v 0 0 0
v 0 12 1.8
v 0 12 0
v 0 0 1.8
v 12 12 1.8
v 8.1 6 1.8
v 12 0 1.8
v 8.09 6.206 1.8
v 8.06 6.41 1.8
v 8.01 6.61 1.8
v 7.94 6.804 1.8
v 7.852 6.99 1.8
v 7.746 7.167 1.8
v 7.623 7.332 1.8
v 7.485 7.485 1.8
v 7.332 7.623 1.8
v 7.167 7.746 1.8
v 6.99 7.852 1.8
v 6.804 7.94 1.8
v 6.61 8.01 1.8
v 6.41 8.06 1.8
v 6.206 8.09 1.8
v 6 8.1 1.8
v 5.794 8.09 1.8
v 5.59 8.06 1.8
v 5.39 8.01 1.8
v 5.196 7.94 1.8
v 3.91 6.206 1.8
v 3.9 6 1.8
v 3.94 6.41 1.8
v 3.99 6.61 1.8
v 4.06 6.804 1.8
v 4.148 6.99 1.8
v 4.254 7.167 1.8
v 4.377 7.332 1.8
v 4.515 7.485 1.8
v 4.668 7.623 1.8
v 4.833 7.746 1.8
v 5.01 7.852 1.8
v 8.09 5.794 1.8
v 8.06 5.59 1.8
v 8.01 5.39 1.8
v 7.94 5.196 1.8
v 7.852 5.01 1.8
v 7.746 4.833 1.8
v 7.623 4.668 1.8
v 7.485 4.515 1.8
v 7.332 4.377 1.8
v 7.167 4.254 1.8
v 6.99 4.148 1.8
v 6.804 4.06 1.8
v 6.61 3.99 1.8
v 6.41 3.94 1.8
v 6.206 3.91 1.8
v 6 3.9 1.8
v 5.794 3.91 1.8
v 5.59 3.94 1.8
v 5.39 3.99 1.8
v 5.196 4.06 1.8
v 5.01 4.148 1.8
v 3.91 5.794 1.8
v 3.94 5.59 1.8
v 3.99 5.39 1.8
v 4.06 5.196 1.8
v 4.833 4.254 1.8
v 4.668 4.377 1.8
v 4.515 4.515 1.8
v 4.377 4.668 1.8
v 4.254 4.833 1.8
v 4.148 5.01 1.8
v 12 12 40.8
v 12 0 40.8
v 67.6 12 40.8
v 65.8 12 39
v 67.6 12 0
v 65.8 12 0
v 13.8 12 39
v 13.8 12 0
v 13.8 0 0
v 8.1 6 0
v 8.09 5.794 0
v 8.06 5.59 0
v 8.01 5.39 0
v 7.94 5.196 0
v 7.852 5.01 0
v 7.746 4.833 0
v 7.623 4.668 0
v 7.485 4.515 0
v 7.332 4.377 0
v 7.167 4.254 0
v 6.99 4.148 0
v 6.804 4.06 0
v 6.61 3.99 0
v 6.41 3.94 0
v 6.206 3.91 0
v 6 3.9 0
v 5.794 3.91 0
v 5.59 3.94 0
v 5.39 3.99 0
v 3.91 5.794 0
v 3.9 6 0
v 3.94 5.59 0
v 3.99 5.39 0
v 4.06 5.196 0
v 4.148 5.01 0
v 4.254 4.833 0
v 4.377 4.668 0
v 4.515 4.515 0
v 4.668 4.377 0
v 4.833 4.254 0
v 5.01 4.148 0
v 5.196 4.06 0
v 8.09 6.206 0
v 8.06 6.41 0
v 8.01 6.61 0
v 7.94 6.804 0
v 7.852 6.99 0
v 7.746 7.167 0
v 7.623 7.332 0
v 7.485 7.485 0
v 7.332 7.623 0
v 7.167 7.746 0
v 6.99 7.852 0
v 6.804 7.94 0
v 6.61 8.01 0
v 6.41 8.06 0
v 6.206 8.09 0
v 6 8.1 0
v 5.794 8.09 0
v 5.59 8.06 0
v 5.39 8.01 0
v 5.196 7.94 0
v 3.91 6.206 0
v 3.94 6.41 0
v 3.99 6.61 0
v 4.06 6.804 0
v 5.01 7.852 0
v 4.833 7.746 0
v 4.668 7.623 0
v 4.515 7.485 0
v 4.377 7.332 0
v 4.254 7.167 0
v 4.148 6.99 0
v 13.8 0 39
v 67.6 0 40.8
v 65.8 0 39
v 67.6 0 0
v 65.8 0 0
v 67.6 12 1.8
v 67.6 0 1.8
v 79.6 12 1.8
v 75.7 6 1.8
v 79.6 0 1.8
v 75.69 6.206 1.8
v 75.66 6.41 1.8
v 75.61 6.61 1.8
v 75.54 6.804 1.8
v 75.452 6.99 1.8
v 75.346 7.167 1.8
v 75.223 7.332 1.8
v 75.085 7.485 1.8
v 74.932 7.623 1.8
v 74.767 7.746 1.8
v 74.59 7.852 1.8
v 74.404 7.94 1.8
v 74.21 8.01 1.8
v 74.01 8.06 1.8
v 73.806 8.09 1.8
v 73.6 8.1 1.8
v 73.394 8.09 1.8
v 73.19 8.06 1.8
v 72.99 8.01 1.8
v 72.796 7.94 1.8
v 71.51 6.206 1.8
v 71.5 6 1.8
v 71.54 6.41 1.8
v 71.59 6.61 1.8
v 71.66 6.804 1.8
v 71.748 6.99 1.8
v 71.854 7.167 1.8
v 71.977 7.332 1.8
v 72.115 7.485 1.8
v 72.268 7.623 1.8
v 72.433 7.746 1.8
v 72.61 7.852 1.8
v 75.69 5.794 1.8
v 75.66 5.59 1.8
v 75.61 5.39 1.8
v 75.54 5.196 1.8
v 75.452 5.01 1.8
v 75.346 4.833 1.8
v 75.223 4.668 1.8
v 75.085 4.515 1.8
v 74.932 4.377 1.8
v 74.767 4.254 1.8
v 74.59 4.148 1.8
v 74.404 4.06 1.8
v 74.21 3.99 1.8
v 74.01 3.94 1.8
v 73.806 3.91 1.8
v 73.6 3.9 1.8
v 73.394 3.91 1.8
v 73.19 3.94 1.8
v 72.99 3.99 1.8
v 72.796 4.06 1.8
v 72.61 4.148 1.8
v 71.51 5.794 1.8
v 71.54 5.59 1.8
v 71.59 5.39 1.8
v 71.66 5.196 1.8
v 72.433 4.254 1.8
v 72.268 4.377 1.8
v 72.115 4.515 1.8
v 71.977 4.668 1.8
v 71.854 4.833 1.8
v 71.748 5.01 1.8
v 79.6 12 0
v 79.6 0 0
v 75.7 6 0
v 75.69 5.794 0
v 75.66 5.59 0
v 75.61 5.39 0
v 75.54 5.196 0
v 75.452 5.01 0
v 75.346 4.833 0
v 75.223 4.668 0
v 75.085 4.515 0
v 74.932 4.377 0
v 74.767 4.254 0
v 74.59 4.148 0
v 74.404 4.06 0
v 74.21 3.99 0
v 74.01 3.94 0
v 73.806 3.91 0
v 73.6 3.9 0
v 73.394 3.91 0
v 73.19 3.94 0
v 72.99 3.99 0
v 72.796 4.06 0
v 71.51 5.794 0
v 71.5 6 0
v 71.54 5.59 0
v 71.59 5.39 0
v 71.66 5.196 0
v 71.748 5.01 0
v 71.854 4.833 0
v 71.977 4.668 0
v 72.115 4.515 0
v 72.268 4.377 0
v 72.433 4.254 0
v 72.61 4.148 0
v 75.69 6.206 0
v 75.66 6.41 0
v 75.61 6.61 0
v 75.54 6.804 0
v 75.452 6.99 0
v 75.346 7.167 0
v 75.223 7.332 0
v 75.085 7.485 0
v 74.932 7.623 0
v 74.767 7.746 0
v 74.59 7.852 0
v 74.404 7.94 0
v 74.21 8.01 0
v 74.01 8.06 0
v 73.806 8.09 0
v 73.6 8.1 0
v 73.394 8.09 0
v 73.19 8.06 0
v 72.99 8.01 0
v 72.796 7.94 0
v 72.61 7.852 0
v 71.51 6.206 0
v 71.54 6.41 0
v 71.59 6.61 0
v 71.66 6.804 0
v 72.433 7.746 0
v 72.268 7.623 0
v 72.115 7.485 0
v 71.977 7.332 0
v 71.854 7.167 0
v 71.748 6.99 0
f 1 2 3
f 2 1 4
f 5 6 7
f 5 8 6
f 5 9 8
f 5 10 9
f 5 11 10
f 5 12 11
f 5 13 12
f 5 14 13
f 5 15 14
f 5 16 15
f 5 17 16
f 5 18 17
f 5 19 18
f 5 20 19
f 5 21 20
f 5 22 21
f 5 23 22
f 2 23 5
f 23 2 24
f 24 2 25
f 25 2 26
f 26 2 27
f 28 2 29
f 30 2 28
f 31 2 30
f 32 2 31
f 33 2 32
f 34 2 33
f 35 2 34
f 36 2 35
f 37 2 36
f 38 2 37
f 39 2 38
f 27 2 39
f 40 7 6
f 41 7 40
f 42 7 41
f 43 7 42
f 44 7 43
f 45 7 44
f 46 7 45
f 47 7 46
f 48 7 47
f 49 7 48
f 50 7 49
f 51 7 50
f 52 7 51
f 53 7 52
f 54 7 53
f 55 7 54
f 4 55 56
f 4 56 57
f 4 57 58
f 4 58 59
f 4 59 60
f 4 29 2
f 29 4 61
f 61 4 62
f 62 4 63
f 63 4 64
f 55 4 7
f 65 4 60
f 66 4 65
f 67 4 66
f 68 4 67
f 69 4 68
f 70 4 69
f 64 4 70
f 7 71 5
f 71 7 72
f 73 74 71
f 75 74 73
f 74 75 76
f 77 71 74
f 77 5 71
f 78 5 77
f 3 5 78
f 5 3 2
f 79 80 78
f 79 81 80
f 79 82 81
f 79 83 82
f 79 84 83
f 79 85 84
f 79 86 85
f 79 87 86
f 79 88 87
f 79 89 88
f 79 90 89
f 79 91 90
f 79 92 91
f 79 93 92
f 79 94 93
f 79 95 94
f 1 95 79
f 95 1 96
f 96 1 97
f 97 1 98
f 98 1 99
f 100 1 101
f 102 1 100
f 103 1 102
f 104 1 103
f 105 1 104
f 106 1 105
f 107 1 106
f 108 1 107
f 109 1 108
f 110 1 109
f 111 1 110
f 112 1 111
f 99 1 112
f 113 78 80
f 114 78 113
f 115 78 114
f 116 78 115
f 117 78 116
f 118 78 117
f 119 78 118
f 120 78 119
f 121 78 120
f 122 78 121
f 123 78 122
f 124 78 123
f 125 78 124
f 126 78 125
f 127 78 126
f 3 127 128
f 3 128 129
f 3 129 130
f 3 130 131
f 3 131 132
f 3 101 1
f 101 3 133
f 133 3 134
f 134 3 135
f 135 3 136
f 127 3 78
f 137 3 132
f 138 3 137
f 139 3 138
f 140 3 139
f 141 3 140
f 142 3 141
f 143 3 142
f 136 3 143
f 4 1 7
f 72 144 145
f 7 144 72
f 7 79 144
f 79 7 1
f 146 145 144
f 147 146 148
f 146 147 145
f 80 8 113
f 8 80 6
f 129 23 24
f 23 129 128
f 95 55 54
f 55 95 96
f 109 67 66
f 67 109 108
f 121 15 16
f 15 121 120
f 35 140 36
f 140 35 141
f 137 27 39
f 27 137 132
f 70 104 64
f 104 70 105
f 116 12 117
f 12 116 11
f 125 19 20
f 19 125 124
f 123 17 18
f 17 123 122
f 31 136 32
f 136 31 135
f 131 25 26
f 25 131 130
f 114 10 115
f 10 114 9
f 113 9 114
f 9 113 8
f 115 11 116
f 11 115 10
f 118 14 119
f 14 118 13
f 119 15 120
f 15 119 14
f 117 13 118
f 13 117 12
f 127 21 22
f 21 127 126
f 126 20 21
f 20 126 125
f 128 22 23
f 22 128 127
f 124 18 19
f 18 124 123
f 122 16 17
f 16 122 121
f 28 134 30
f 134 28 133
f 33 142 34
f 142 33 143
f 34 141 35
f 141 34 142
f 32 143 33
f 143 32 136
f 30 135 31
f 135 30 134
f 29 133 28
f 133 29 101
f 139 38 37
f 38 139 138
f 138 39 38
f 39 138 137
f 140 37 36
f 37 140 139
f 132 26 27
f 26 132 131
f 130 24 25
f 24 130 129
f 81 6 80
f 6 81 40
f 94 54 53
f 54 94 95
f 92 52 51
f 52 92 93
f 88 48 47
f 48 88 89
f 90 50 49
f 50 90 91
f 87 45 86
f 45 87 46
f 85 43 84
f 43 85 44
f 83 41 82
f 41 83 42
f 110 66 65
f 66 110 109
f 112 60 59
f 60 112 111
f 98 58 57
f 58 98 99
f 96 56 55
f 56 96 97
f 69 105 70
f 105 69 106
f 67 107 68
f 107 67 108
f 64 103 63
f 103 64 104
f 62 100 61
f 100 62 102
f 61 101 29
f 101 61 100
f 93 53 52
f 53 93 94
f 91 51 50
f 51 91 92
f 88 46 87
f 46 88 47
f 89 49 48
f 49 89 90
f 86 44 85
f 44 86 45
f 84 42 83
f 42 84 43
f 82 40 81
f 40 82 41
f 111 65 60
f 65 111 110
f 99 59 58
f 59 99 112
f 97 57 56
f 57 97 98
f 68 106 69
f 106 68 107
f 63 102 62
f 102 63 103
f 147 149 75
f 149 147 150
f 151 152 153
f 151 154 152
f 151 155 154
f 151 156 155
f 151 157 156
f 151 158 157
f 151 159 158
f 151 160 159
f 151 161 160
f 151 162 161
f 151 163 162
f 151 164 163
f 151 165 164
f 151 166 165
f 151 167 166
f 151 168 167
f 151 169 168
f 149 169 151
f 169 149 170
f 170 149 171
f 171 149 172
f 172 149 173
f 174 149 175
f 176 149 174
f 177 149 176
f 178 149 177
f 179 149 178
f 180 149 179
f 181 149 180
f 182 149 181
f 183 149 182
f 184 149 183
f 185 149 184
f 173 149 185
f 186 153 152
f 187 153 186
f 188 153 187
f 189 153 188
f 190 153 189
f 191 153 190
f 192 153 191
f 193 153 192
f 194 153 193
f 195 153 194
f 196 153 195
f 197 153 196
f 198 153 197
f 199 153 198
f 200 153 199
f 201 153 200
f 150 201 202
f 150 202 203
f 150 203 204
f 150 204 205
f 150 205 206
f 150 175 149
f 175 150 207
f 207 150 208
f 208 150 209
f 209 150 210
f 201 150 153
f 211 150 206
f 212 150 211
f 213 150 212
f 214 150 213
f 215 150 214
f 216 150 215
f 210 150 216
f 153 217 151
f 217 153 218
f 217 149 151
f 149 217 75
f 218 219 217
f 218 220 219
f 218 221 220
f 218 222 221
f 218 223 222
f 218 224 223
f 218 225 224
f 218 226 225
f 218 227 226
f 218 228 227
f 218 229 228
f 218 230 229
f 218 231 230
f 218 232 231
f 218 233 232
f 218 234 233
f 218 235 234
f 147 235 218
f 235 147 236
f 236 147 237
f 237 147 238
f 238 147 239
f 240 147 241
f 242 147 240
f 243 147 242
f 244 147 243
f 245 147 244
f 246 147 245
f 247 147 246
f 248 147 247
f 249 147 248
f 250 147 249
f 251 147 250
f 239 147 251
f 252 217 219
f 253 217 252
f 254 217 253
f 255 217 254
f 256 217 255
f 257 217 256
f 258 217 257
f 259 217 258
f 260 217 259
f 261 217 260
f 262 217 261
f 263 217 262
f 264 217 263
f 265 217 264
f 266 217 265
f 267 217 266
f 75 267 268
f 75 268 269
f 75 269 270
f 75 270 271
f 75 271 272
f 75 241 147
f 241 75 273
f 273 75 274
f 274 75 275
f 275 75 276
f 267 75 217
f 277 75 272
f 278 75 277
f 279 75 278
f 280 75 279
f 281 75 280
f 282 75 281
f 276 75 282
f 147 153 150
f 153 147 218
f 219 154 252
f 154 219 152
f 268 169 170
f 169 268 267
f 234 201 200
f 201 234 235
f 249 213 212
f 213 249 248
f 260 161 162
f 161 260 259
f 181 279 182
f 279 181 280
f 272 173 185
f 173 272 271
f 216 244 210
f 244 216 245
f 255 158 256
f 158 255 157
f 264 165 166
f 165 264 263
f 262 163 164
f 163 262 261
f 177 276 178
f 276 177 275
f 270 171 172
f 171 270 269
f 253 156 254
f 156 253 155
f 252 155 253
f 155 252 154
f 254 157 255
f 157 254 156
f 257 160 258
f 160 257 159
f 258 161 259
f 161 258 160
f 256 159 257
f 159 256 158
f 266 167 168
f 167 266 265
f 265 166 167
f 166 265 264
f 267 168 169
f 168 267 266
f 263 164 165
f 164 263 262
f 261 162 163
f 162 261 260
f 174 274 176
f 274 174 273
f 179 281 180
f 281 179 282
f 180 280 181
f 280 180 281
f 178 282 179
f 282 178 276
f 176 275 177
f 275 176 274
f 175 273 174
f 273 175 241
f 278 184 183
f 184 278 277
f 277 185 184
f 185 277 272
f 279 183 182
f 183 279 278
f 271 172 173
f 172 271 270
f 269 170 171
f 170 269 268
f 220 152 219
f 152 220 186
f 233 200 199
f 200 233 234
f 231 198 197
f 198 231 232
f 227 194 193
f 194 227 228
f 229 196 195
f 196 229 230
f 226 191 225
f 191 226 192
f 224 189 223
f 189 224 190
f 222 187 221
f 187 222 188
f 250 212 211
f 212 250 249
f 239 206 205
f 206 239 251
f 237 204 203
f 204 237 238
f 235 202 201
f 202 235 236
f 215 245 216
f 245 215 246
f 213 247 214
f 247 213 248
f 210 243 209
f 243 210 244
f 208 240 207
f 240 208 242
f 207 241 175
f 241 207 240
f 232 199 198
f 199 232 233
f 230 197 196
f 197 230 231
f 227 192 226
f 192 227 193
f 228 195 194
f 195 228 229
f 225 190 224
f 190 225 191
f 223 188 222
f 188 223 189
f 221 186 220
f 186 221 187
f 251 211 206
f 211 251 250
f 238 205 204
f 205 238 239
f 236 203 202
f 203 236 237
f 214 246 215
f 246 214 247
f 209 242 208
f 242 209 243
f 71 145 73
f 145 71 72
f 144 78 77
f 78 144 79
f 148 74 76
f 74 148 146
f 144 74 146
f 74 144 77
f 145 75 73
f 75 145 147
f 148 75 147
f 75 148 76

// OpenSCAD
materialThickness = 1.8;
powerX = 52;
powerY = 12;
powerZ = 39;
latchX = 12;
latchY = 12;
latchHoleRadius = 2.1;

module latch(holeRadius) {
    difference() {
        cube([
            latchX,
            latchY,
            materialThickness
        ]);
        translate([
            latchX/2,
            latchY/2,
            materialThickness/2
        ]) cylinder(
            r=holeRadius,
            h=materialThickness,
            $fn=64,
            center=true
        );
    }
}

// Simple power plug holder
module powerPlugHolder() {
    union() {
        // first latch
        latch(latchHoleRadius);
        // first side
        translate([
            latchX,
            0,
            0
        ]) cube([
            materialThickness,
            powerY,
            powerZ + materialThickness
        ]);
        // upper side
        translate([
            latchX + materialThickness,
            0,
            powerZ
        ]) cube([
            powerX,
            powerY,
            materialThickness
        ]);
        // second side
        translate([
            latchX + materialThickness + powerX,
            0,
            0
        ]) cube([
            materialThickness,
            powerY,
            powerZ + materialThickness
        ]);
        // second latch
        translate([
            latchX + 2*materialThickness + powerX,
            0,
            0
        ]) latch(latchHoleRadius);
    };
}

powerPlugHolder();
